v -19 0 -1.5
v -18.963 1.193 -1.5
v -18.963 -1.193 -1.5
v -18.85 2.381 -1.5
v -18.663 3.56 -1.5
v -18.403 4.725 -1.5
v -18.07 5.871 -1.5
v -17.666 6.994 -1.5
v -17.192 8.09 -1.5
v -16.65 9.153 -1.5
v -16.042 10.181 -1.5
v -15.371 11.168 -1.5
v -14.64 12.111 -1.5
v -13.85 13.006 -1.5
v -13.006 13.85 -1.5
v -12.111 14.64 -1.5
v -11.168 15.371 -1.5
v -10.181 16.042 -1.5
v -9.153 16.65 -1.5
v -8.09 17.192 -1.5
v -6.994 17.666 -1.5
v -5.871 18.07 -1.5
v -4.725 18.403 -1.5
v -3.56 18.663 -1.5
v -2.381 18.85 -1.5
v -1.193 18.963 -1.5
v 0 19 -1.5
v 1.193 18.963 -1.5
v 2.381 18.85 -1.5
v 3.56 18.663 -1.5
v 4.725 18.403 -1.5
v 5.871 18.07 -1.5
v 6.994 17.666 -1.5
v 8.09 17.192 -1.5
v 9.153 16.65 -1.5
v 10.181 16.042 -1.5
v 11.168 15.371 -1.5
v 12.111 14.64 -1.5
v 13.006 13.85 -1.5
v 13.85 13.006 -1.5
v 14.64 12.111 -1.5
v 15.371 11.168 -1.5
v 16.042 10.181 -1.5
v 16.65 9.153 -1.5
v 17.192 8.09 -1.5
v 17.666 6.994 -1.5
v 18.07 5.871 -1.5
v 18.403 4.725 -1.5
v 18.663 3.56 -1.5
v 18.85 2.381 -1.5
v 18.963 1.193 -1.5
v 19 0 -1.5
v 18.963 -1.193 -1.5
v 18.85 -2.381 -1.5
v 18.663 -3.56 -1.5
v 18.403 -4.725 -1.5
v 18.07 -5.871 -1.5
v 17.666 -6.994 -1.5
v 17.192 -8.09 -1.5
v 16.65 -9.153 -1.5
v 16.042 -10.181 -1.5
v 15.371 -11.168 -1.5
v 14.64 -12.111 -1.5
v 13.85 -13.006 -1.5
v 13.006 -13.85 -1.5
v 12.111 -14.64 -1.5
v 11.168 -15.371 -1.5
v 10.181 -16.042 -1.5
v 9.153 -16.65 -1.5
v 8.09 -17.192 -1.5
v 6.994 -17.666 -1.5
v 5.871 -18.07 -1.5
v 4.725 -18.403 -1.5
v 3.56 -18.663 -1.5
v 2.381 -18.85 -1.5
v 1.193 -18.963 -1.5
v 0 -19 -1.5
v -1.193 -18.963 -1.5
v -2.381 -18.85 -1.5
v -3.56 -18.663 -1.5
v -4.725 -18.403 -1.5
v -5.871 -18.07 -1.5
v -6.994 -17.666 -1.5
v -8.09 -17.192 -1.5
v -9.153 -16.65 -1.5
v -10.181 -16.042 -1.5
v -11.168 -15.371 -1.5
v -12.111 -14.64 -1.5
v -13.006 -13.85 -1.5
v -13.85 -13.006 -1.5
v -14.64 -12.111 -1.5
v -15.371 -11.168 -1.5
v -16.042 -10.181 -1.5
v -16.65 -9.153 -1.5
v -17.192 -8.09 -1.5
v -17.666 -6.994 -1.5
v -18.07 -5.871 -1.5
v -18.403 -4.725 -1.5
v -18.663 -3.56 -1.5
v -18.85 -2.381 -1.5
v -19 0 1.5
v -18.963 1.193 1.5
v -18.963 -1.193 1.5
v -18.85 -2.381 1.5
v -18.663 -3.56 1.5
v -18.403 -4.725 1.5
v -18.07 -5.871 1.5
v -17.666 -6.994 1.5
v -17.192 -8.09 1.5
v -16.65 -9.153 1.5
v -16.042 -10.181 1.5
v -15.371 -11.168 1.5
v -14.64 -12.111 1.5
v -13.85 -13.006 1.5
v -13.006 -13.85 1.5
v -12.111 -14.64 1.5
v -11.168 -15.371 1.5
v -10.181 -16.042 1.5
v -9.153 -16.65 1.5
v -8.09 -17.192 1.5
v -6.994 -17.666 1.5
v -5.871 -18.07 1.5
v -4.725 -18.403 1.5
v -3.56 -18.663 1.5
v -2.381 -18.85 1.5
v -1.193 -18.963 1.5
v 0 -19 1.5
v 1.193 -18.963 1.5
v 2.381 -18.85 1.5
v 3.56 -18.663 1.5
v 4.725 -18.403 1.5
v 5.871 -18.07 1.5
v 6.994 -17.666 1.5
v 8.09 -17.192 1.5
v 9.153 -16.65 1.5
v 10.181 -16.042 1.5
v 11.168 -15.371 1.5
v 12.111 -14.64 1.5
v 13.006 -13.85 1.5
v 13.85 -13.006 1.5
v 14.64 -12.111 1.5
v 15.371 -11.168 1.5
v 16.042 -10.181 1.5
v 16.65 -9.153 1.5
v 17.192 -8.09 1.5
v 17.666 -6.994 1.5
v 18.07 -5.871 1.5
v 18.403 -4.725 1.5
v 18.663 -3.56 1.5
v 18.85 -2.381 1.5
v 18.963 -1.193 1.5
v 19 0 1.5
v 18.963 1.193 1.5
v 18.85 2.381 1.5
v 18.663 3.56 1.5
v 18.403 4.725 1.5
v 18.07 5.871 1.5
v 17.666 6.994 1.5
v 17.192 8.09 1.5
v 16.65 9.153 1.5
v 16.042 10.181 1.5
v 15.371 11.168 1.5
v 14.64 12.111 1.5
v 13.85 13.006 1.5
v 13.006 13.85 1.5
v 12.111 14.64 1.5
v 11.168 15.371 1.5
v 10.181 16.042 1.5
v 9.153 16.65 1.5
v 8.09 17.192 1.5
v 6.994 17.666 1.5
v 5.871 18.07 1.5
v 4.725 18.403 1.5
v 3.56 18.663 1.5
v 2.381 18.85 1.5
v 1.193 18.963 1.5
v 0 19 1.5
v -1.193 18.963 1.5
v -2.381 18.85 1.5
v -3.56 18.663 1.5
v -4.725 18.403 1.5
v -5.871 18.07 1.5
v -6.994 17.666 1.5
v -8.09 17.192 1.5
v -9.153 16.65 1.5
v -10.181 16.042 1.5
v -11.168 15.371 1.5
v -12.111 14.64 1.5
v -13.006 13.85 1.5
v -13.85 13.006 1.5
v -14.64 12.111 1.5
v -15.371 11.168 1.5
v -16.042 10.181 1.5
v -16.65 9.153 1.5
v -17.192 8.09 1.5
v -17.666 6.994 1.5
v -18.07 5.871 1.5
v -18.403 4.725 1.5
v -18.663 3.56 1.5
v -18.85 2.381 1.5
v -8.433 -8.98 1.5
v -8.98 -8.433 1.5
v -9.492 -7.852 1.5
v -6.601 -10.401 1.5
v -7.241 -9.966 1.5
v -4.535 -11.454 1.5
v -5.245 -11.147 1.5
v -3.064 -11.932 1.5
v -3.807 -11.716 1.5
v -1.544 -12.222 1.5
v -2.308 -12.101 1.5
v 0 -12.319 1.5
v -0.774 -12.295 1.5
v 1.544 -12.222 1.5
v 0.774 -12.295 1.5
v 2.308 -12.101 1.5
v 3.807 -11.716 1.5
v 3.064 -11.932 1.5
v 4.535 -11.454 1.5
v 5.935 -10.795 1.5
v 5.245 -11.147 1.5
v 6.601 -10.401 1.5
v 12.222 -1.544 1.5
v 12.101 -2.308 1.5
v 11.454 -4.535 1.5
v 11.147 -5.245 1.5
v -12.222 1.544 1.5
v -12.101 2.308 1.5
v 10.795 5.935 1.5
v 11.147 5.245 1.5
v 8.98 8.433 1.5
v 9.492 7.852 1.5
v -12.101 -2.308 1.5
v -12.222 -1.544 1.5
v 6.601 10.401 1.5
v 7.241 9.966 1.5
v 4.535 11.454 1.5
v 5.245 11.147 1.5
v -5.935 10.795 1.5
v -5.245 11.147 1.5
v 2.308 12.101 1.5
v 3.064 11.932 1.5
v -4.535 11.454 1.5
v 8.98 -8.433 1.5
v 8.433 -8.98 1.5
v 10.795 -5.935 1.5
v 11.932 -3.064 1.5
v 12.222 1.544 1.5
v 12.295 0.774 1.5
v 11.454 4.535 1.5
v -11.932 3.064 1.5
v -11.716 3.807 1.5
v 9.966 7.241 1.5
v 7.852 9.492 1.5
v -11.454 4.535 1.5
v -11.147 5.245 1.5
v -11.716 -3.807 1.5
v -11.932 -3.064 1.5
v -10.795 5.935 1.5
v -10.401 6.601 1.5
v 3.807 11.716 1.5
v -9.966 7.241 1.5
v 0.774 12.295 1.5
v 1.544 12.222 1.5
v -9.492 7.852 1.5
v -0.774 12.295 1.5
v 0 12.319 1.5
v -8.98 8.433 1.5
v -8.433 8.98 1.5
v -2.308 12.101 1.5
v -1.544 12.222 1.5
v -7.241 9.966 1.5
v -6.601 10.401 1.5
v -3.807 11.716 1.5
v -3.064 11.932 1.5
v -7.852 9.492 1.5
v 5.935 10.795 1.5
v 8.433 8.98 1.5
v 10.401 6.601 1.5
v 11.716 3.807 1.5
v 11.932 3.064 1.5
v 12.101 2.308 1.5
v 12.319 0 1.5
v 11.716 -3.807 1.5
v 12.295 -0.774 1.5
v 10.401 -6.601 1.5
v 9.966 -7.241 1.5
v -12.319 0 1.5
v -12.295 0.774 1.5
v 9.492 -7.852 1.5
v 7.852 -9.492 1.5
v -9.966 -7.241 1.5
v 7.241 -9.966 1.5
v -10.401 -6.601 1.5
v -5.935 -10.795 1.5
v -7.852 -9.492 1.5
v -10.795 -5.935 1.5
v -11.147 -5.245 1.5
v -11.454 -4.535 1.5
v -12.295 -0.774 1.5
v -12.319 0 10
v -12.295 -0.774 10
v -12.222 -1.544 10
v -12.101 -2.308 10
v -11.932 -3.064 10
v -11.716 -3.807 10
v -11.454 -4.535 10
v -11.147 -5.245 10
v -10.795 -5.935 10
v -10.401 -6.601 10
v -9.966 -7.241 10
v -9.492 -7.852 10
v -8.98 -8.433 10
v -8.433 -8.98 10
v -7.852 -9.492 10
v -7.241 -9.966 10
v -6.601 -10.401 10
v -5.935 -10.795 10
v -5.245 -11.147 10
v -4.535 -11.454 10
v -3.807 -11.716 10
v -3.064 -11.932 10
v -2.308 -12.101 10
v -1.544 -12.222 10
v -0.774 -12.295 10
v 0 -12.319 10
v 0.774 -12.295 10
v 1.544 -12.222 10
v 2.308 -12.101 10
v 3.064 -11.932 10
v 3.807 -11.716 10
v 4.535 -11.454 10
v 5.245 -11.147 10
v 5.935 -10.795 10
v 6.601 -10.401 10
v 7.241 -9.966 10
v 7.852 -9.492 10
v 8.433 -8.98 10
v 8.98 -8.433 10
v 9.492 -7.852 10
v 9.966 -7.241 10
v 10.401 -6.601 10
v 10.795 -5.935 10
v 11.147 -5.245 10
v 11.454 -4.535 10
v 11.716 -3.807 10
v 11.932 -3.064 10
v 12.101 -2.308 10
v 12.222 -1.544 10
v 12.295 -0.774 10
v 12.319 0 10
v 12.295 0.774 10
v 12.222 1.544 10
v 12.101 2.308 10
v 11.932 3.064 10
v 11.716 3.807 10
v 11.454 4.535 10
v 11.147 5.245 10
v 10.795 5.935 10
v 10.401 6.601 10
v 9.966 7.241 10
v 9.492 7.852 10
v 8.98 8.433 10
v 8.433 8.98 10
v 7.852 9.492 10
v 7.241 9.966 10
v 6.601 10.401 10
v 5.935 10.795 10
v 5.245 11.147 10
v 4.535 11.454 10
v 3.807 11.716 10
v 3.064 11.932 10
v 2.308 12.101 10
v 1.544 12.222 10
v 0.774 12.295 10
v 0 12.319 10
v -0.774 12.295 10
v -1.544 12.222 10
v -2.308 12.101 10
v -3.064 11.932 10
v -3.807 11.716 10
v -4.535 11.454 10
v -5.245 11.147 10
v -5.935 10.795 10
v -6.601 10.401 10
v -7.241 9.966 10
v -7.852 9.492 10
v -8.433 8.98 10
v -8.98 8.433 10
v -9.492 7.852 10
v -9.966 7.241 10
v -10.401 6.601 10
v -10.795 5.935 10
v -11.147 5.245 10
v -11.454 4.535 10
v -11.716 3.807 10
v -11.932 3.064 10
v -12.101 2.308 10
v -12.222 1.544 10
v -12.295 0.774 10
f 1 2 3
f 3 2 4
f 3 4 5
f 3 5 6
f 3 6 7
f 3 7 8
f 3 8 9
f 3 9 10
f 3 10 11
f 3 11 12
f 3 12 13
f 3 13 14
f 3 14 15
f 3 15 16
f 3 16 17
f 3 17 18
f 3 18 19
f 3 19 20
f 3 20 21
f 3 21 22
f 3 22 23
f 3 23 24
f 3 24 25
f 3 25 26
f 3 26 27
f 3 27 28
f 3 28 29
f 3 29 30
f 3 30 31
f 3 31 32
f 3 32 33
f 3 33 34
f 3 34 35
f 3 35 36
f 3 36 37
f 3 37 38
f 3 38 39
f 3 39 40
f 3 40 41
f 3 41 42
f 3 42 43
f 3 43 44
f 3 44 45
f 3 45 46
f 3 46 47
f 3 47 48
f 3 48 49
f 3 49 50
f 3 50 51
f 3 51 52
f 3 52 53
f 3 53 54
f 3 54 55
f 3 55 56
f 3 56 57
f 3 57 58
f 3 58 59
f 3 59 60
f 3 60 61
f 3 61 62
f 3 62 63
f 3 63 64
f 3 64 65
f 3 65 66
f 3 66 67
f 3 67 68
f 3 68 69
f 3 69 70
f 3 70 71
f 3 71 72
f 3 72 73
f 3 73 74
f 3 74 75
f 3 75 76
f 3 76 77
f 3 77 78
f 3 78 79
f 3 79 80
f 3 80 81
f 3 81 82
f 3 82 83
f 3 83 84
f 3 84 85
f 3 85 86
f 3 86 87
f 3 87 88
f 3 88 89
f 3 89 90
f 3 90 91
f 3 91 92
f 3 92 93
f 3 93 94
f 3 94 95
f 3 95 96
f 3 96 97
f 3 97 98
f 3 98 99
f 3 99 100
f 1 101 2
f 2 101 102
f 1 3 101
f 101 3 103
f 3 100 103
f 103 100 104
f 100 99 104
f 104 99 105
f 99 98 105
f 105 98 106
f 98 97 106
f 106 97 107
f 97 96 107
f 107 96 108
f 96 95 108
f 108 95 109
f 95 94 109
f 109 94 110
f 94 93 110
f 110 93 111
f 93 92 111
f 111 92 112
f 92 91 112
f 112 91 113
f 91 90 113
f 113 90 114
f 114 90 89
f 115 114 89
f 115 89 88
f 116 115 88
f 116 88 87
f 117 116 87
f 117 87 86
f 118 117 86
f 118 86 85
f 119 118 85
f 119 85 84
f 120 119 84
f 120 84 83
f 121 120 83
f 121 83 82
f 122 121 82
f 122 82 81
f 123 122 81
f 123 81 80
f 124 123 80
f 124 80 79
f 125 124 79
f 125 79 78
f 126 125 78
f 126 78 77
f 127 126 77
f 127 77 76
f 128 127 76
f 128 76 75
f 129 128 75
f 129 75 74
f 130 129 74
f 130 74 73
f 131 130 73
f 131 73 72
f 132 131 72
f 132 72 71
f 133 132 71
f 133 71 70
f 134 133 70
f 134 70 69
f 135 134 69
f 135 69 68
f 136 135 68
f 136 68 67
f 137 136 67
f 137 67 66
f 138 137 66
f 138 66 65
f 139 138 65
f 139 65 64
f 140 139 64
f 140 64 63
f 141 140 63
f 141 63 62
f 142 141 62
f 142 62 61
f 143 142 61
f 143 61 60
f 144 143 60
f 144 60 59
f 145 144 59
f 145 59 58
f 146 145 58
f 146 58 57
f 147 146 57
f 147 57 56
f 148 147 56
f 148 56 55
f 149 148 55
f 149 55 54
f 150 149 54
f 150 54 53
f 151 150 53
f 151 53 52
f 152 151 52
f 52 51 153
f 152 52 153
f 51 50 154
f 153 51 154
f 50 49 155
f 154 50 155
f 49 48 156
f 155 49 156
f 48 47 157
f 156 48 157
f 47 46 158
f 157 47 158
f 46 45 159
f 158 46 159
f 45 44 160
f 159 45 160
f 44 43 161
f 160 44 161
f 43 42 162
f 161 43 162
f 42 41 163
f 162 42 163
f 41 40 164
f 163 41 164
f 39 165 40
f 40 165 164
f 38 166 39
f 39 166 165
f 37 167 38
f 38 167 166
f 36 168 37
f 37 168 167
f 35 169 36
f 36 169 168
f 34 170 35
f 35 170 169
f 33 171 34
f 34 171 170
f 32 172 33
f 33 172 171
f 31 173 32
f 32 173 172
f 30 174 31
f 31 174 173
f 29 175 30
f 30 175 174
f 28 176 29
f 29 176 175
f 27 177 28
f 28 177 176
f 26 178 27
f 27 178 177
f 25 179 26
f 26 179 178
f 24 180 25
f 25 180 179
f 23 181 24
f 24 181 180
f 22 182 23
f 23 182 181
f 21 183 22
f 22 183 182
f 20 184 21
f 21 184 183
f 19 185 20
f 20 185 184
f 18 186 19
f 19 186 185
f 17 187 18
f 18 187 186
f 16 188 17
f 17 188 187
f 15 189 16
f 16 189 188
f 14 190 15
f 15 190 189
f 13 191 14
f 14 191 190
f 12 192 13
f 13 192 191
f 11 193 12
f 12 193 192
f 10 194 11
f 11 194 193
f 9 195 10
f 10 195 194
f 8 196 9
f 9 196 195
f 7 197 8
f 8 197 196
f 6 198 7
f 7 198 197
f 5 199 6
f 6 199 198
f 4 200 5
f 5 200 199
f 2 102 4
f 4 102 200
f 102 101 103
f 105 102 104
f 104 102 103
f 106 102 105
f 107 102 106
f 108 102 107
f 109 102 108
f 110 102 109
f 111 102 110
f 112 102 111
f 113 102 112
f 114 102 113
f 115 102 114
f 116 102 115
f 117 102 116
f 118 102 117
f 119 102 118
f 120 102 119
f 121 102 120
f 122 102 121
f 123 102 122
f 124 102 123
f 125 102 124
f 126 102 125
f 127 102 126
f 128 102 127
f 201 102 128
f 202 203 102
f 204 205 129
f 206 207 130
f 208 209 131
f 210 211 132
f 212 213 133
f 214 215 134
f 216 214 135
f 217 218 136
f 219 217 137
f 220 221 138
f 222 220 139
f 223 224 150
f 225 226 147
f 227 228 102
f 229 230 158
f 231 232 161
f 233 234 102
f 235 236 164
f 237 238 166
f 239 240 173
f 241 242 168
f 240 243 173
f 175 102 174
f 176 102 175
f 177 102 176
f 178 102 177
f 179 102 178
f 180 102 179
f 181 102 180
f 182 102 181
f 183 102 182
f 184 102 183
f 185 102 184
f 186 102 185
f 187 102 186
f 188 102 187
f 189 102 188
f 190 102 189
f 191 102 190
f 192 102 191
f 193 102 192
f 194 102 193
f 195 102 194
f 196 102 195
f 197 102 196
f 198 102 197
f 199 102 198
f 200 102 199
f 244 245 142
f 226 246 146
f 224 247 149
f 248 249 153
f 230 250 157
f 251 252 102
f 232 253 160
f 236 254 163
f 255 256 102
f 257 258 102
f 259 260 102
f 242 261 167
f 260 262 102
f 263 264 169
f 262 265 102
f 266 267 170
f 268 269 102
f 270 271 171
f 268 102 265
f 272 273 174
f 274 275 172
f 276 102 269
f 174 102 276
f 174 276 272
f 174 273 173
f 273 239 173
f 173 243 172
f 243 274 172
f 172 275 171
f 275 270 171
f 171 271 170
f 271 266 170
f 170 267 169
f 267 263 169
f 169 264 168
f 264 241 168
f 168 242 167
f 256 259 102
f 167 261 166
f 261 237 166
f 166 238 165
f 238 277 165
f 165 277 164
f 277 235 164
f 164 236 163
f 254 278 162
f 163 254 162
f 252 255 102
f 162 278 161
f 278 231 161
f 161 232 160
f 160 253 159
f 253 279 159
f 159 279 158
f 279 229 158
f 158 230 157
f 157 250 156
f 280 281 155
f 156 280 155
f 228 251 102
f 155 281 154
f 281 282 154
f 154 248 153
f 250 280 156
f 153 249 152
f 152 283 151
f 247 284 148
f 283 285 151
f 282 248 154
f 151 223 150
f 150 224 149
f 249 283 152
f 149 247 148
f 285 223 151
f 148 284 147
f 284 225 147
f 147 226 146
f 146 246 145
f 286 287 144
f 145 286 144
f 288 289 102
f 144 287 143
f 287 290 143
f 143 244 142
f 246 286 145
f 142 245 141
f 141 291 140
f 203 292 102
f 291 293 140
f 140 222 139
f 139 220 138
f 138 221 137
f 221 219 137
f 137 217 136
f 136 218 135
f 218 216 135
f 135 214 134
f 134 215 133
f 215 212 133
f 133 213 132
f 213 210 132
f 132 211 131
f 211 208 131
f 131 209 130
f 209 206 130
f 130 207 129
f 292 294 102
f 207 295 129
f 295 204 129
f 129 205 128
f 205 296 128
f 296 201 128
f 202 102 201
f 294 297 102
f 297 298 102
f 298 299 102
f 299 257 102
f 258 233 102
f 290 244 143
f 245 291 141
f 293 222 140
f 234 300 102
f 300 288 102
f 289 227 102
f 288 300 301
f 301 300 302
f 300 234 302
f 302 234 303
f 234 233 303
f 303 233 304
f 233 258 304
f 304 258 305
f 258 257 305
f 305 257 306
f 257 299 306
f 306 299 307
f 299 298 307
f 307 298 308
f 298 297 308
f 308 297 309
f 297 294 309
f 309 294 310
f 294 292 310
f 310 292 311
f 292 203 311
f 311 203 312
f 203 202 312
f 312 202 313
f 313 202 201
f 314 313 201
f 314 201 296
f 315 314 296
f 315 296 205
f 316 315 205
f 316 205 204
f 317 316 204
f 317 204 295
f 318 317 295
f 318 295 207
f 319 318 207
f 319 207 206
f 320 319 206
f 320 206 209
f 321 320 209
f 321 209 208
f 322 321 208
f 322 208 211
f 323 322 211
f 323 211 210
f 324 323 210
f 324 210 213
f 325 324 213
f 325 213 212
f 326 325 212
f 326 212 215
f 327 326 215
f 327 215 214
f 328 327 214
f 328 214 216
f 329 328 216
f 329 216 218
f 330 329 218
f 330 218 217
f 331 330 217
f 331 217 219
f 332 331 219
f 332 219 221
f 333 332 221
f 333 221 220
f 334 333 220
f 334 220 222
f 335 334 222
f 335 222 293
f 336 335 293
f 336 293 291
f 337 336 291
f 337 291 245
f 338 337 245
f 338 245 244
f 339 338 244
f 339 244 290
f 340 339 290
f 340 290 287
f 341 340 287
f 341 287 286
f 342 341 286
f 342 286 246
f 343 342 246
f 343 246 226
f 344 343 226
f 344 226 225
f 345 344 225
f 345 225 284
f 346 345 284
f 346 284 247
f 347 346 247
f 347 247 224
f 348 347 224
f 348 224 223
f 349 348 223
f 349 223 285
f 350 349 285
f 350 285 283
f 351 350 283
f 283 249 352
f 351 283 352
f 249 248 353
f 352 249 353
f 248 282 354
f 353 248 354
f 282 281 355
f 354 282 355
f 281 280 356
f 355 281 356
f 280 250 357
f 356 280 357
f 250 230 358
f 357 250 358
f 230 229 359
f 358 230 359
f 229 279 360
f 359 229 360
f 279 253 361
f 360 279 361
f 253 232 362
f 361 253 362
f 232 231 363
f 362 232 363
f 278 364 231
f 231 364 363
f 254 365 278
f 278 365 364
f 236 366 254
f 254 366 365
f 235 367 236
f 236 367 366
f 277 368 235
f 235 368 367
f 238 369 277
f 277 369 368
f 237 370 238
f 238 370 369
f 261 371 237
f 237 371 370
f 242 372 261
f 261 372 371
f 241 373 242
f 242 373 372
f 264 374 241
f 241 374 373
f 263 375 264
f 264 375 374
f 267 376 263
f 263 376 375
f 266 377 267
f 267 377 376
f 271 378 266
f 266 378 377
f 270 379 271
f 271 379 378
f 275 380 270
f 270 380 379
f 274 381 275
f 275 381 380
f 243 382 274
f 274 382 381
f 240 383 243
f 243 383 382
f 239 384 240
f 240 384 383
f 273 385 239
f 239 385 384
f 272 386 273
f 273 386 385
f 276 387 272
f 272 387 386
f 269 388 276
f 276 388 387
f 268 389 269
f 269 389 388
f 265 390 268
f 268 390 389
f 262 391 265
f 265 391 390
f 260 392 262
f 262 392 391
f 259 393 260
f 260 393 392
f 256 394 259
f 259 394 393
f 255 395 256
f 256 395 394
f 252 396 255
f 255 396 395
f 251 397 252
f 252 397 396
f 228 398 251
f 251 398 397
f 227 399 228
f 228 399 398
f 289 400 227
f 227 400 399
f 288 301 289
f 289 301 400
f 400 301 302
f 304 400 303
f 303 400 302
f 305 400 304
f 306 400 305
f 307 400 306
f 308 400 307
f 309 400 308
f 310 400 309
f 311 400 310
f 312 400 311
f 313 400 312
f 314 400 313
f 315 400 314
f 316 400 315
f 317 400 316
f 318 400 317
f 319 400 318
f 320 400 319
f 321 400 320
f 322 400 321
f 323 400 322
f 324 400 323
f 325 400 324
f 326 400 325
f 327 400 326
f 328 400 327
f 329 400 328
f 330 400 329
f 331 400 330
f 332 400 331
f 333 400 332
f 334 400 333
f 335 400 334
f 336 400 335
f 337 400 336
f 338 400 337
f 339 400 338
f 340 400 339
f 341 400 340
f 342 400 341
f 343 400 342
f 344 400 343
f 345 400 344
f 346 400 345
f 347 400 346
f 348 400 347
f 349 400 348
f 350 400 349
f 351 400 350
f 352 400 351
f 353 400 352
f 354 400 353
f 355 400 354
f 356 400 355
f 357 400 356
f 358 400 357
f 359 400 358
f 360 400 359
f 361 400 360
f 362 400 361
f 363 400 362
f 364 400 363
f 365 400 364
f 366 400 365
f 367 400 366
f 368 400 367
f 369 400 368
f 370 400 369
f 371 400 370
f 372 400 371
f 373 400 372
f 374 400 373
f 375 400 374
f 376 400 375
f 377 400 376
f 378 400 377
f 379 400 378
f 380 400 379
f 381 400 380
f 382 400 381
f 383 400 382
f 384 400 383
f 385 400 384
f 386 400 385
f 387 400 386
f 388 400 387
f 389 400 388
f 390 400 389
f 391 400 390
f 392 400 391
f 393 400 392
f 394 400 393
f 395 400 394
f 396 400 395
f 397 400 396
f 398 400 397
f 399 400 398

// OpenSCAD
cylinder(r=38/2, h=3, center=true, $fn=100);
translate([0, 0, 5]) {
cylinder(r=24.638/2, h=10, center=true, $fn=100);	
}
